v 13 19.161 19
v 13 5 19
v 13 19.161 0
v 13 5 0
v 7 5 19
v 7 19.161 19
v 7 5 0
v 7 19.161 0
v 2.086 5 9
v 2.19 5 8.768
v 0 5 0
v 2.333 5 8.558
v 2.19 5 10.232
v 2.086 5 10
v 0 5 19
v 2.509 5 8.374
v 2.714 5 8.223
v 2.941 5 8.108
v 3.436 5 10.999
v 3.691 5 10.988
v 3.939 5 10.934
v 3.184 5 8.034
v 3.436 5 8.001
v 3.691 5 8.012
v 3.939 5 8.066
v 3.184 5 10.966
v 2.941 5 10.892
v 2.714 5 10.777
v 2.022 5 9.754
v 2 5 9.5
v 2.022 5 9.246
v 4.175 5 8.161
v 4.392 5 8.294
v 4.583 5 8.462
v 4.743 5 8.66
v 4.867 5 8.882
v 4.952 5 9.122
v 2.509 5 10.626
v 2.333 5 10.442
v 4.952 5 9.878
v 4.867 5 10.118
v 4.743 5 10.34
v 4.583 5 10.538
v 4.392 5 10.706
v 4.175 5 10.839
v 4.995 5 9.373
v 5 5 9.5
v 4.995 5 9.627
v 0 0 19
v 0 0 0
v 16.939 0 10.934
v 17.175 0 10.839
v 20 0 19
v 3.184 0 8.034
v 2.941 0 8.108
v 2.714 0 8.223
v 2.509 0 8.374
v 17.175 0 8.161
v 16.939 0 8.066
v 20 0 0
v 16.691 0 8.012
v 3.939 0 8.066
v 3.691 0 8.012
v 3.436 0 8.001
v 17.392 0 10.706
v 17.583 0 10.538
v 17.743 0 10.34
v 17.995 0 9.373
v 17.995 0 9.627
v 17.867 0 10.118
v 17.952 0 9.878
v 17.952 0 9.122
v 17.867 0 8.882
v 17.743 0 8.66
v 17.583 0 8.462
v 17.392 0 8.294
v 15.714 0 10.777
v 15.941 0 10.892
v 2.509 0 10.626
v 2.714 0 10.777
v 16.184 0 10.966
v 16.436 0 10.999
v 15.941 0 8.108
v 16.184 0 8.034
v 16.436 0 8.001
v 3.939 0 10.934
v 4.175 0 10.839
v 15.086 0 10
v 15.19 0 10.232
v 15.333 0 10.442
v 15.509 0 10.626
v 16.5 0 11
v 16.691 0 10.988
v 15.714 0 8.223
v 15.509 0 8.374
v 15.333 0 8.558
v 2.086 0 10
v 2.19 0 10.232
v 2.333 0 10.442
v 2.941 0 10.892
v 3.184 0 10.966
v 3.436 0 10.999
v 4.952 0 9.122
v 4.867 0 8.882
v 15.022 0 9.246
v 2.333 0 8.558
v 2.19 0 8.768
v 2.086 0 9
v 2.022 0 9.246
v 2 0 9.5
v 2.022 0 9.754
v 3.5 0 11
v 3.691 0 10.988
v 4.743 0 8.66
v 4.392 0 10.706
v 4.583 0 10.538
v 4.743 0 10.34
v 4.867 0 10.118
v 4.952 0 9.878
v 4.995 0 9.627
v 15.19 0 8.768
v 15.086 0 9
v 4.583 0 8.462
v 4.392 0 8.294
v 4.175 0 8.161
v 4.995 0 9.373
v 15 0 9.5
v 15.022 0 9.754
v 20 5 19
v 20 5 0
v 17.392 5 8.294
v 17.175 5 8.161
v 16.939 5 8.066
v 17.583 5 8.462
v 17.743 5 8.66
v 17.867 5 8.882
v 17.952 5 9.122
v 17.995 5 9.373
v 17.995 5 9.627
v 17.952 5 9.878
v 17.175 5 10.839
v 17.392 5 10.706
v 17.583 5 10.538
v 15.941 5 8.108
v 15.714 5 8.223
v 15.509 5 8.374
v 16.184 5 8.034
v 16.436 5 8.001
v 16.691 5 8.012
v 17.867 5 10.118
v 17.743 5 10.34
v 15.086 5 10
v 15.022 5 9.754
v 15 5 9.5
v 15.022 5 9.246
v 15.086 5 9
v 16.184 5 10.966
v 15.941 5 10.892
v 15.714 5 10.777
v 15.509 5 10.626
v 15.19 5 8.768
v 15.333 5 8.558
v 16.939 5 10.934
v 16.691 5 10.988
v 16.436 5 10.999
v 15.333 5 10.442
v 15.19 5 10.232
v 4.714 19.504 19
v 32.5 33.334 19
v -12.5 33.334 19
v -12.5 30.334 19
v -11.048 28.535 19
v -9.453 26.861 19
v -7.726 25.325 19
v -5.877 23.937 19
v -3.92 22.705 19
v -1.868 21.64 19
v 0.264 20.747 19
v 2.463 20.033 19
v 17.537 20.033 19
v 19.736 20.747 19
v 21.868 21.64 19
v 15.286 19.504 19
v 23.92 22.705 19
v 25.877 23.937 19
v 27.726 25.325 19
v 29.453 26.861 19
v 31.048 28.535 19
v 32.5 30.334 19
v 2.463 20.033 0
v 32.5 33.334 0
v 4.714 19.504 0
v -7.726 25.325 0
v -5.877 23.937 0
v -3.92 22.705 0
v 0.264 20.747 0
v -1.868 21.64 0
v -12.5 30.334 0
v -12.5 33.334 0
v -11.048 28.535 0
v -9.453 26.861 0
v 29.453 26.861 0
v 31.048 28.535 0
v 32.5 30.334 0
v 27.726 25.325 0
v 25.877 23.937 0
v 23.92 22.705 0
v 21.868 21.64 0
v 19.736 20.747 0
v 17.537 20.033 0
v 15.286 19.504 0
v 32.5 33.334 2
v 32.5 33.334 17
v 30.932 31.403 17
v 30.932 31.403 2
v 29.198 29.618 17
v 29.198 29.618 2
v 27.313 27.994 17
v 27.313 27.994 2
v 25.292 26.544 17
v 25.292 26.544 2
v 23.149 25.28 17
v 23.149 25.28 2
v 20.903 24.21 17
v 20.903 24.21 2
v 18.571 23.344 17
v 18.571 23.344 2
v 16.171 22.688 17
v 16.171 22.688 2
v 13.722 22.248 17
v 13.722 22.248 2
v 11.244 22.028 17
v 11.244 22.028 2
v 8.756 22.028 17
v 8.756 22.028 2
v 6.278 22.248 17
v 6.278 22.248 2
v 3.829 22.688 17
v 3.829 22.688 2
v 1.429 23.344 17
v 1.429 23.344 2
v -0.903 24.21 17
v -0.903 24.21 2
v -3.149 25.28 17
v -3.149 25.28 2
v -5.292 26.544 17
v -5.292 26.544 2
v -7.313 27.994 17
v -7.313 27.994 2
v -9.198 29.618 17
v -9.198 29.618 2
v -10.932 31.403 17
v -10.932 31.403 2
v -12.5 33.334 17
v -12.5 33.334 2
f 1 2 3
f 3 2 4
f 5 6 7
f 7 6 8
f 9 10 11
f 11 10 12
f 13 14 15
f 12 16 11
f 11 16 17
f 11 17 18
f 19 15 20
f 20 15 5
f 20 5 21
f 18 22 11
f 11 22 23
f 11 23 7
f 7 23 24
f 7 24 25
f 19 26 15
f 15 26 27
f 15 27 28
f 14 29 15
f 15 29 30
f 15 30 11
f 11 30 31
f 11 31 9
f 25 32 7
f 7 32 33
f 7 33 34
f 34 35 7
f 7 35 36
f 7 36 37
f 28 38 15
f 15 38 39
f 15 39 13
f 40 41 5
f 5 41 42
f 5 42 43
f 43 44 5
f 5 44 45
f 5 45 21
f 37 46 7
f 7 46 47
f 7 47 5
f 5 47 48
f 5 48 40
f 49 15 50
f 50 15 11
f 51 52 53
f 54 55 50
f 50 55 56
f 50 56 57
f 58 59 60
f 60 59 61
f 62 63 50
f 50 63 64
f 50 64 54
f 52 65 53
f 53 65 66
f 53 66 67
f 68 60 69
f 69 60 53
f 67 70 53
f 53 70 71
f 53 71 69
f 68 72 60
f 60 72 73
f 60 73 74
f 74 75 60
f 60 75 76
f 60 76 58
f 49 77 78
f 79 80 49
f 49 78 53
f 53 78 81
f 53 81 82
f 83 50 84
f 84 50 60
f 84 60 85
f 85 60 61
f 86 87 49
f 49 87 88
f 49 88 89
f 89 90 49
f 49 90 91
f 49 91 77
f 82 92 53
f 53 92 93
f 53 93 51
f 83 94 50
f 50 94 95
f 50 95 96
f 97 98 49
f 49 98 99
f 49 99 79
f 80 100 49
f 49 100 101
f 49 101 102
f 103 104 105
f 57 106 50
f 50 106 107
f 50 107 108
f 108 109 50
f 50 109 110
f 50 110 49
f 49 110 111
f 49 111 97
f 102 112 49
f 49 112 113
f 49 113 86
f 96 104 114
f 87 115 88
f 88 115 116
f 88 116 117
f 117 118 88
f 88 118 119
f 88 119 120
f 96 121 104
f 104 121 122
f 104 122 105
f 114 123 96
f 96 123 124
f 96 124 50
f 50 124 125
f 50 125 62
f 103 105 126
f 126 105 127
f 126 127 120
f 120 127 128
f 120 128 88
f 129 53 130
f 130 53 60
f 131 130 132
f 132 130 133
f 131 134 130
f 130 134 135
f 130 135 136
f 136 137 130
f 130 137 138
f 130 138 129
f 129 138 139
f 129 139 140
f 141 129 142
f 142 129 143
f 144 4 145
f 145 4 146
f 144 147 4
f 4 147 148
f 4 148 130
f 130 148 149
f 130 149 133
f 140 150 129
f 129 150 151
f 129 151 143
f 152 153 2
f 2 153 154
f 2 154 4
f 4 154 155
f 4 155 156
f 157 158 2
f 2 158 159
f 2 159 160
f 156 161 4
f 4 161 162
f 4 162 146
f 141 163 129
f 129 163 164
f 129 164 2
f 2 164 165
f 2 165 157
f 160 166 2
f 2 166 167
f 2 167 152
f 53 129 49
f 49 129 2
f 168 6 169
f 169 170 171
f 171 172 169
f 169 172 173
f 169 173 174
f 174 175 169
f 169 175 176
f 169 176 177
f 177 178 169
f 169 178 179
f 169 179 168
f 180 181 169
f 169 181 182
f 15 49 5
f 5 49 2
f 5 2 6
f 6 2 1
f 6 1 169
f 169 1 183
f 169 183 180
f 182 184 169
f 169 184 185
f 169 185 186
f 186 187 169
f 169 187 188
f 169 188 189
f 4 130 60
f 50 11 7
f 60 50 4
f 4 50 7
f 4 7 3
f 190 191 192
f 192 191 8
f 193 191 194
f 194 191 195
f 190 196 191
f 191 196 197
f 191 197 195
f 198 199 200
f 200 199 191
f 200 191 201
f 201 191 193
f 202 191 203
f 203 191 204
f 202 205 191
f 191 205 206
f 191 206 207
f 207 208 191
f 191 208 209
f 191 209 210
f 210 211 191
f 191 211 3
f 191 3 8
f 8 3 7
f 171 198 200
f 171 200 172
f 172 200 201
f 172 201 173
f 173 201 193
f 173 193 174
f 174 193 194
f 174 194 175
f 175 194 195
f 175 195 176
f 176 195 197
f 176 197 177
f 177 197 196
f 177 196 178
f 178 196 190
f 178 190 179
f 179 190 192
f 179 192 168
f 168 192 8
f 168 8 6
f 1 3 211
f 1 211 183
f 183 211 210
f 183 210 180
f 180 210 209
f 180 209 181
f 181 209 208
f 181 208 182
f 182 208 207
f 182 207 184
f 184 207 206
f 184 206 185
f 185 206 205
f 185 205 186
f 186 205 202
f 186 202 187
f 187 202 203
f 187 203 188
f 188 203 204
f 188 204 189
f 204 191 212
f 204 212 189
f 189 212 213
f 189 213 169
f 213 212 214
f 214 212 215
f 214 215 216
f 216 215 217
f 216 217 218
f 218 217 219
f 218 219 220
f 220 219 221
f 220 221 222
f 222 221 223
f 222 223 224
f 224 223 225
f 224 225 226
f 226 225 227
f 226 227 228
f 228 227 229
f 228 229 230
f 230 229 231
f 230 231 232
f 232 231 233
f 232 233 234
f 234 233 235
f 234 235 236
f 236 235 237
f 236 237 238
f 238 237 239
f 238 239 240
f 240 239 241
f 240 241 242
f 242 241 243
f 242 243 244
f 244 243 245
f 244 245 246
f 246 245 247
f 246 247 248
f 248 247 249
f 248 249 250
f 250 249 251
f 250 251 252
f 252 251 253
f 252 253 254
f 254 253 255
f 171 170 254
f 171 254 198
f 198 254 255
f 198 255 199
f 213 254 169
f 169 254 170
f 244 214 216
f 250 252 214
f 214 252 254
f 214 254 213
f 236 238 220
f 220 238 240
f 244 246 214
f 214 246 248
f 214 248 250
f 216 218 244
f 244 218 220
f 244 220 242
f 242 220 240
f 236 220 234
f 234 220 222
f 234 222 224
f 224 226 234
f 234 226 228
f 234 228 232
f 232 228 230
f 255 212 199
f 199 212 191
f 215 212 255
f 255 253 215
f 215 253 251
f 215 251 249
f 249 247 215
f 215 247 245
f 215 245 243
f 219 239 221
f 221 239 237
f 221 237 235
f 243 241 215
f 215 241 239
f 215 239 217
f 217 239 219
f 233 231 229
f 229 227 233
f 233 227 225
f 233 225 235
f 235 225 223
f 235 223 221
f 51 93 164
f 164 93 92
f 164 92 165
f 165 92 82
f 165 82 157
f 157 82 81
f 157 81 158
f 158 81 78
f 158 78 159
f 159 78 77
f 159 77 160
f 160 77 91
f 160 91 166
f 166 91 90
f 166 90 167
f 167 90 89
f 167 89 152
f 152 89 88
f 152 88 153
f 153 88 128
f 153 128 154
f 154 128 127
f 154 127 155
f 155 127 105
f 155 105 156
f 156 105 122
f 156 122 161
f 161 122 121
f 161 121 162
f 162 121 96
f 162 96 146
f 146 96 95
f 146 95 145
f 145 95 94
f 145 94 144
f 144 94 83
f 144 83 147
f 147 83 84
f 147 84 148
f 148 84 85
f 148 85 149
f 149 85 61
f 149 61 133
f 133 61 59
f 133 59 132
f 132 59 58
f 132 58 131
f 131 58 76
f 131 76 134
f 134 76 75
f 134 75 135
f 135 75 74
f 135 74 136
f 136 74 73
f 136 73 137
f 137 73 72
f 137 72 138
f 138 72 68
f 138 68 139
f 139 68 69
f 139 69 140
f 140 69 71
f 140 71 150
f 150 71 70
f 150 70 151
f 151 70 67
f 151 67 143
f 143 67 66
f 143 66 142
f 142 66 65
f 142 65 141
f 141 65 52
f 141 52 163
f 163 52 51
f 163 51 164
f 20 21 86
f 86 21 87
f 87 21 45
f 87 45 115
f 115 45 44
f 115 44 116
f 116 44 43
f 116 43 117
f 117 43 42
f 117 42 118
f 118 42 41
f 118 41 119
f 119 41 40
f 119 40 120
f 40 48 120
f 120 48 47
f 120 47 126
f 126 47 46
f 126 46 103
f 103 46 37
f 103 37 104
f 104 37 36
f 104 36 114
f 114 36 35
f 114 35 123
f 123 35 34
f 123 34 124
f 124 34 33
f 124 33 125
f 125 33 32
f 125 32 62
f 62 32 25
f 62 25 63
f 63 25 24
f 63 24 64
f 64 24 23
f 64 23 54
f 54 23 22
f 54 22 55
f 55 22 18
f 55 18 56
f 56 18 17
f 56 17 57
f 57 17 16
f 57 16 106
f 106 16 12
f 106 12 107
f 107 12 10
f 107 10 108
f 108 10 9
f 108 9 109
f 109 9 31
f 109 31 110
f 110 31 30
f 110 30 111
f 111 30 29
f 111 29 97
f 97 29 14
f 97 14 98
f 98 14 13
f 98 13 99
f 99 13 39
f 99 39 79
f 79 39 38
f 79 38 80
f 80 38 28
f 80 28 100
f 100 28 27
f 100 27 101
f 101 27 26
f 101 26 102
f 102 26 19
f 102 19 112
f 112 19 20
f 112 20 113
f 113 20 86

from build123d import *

# Parameters (mm, degrees)
BOSS_EXTRUDE1_DEPTH = 19
BOSS_EXTRUDE2_REACH = 52.283
SKETCH2_W           = 45
SKETCH2_H           = 2
SKETCH3_R           = 1.5
CUT_EXTRUDE1_DEPTH  = 5


with BuildPart() as part:
    # Sketch1 → Boss-Extrude1 (new body)
    with BuildSketch(Plane.XY):
        with BuildLine():
            Line((0, 5), (0, 0))
            Line((0, 0), (20, 0))
            Line((20, 0), (20, 5))
            Line((20, 5), (13, 5))
            Line((13, 5), (13, 19.161178186))
            ThreePointArc((13, 19.161178186), (23.920180244, 22.705379567), (32.5, 30.334166688))
            Line((32.5, 30.334166688), (32.5, 33.334166688))
            ThreePointArc((32.5, 33.334166688), (10, 22), (-12.5, 33.334166688))
            Line((-12.5, 33.334166688), (-12.5, 30.334166688))
            ThreePointArc((-12.5, 30.334166688), (-3.920180244, 22.705379567), (7, 19.161178186))
            Line((7, 19.161178186), (7, 5))
            Line((7, 5), (0, 5))
        make_face()
    extrude(amount=BOSS_EXTRUDE1_DEPTH)

    # Sketch2 → Boss-Extrude2 (add, up to next)
    with BuildSketch(Plane(origin=(0, 33.334166688, 0), x_dir=(1, 0, 0), z_dir=(0, 1, 0)), mode=Mode.PRIVATE) as boss_extrude2_sk1:
        with Locations((10, -18)):
            Rectangle(SKETCH2_W, SKETCH2_H)
    boss_extrude2_tool1 = extrude(boss_extrude2_sk1.sketch, amount=-BOSS_EXTRUDE2_REACH, mode=Mode.PRIVATE) - part.part
    # Sketch2 → Boss-Extrude2 (add, up to next)
    with BuildSketch(Plane(origin=(0, 33.334166688, 0), x_dir=(1, 0, 0), z_dir=(0, 1, 0)), mode=Mode.PRIVATE) as boss_extrude2_sk2:
        with Locations((10, -1)):
            Rectangle(SKETCH2_W, SKETCH2_H)
    boss_extrude2_tool2 = extrude(boss_extrude2_sk2.sketch, amount=-BOSS_EXTRUDE2_REACH, mode=Mode.PRIVATE) - part.part
    add(boss_extrude2_tool1.solids().sort_by_distance((10, 33.334167, 18))[0])
    add(boss_extrude2_tool2.solids().sort_by_distance((10, 33.334167, 1))[0])

    # Sketch3 → Cut-Extrude1 (cut)
    with BuildSketch(Plane(origin=(0, 5, 0), x_dir=(1, 0, 0), z_dir=(0, 1, 0))):
        with Locations(Location((16.5, -9.5, 0), (0, 0, 180))):
            Circle(SKETCH3_R)
        with Locations(Location((3.5, -9.5, 0), (0, 0, 270))):
            Circle(SKETCH3_R)
    extrude(amount=-CUT_EXTRUDE1_DEPTH, mode=Mode.SUBTRACT)


solid = part.part
